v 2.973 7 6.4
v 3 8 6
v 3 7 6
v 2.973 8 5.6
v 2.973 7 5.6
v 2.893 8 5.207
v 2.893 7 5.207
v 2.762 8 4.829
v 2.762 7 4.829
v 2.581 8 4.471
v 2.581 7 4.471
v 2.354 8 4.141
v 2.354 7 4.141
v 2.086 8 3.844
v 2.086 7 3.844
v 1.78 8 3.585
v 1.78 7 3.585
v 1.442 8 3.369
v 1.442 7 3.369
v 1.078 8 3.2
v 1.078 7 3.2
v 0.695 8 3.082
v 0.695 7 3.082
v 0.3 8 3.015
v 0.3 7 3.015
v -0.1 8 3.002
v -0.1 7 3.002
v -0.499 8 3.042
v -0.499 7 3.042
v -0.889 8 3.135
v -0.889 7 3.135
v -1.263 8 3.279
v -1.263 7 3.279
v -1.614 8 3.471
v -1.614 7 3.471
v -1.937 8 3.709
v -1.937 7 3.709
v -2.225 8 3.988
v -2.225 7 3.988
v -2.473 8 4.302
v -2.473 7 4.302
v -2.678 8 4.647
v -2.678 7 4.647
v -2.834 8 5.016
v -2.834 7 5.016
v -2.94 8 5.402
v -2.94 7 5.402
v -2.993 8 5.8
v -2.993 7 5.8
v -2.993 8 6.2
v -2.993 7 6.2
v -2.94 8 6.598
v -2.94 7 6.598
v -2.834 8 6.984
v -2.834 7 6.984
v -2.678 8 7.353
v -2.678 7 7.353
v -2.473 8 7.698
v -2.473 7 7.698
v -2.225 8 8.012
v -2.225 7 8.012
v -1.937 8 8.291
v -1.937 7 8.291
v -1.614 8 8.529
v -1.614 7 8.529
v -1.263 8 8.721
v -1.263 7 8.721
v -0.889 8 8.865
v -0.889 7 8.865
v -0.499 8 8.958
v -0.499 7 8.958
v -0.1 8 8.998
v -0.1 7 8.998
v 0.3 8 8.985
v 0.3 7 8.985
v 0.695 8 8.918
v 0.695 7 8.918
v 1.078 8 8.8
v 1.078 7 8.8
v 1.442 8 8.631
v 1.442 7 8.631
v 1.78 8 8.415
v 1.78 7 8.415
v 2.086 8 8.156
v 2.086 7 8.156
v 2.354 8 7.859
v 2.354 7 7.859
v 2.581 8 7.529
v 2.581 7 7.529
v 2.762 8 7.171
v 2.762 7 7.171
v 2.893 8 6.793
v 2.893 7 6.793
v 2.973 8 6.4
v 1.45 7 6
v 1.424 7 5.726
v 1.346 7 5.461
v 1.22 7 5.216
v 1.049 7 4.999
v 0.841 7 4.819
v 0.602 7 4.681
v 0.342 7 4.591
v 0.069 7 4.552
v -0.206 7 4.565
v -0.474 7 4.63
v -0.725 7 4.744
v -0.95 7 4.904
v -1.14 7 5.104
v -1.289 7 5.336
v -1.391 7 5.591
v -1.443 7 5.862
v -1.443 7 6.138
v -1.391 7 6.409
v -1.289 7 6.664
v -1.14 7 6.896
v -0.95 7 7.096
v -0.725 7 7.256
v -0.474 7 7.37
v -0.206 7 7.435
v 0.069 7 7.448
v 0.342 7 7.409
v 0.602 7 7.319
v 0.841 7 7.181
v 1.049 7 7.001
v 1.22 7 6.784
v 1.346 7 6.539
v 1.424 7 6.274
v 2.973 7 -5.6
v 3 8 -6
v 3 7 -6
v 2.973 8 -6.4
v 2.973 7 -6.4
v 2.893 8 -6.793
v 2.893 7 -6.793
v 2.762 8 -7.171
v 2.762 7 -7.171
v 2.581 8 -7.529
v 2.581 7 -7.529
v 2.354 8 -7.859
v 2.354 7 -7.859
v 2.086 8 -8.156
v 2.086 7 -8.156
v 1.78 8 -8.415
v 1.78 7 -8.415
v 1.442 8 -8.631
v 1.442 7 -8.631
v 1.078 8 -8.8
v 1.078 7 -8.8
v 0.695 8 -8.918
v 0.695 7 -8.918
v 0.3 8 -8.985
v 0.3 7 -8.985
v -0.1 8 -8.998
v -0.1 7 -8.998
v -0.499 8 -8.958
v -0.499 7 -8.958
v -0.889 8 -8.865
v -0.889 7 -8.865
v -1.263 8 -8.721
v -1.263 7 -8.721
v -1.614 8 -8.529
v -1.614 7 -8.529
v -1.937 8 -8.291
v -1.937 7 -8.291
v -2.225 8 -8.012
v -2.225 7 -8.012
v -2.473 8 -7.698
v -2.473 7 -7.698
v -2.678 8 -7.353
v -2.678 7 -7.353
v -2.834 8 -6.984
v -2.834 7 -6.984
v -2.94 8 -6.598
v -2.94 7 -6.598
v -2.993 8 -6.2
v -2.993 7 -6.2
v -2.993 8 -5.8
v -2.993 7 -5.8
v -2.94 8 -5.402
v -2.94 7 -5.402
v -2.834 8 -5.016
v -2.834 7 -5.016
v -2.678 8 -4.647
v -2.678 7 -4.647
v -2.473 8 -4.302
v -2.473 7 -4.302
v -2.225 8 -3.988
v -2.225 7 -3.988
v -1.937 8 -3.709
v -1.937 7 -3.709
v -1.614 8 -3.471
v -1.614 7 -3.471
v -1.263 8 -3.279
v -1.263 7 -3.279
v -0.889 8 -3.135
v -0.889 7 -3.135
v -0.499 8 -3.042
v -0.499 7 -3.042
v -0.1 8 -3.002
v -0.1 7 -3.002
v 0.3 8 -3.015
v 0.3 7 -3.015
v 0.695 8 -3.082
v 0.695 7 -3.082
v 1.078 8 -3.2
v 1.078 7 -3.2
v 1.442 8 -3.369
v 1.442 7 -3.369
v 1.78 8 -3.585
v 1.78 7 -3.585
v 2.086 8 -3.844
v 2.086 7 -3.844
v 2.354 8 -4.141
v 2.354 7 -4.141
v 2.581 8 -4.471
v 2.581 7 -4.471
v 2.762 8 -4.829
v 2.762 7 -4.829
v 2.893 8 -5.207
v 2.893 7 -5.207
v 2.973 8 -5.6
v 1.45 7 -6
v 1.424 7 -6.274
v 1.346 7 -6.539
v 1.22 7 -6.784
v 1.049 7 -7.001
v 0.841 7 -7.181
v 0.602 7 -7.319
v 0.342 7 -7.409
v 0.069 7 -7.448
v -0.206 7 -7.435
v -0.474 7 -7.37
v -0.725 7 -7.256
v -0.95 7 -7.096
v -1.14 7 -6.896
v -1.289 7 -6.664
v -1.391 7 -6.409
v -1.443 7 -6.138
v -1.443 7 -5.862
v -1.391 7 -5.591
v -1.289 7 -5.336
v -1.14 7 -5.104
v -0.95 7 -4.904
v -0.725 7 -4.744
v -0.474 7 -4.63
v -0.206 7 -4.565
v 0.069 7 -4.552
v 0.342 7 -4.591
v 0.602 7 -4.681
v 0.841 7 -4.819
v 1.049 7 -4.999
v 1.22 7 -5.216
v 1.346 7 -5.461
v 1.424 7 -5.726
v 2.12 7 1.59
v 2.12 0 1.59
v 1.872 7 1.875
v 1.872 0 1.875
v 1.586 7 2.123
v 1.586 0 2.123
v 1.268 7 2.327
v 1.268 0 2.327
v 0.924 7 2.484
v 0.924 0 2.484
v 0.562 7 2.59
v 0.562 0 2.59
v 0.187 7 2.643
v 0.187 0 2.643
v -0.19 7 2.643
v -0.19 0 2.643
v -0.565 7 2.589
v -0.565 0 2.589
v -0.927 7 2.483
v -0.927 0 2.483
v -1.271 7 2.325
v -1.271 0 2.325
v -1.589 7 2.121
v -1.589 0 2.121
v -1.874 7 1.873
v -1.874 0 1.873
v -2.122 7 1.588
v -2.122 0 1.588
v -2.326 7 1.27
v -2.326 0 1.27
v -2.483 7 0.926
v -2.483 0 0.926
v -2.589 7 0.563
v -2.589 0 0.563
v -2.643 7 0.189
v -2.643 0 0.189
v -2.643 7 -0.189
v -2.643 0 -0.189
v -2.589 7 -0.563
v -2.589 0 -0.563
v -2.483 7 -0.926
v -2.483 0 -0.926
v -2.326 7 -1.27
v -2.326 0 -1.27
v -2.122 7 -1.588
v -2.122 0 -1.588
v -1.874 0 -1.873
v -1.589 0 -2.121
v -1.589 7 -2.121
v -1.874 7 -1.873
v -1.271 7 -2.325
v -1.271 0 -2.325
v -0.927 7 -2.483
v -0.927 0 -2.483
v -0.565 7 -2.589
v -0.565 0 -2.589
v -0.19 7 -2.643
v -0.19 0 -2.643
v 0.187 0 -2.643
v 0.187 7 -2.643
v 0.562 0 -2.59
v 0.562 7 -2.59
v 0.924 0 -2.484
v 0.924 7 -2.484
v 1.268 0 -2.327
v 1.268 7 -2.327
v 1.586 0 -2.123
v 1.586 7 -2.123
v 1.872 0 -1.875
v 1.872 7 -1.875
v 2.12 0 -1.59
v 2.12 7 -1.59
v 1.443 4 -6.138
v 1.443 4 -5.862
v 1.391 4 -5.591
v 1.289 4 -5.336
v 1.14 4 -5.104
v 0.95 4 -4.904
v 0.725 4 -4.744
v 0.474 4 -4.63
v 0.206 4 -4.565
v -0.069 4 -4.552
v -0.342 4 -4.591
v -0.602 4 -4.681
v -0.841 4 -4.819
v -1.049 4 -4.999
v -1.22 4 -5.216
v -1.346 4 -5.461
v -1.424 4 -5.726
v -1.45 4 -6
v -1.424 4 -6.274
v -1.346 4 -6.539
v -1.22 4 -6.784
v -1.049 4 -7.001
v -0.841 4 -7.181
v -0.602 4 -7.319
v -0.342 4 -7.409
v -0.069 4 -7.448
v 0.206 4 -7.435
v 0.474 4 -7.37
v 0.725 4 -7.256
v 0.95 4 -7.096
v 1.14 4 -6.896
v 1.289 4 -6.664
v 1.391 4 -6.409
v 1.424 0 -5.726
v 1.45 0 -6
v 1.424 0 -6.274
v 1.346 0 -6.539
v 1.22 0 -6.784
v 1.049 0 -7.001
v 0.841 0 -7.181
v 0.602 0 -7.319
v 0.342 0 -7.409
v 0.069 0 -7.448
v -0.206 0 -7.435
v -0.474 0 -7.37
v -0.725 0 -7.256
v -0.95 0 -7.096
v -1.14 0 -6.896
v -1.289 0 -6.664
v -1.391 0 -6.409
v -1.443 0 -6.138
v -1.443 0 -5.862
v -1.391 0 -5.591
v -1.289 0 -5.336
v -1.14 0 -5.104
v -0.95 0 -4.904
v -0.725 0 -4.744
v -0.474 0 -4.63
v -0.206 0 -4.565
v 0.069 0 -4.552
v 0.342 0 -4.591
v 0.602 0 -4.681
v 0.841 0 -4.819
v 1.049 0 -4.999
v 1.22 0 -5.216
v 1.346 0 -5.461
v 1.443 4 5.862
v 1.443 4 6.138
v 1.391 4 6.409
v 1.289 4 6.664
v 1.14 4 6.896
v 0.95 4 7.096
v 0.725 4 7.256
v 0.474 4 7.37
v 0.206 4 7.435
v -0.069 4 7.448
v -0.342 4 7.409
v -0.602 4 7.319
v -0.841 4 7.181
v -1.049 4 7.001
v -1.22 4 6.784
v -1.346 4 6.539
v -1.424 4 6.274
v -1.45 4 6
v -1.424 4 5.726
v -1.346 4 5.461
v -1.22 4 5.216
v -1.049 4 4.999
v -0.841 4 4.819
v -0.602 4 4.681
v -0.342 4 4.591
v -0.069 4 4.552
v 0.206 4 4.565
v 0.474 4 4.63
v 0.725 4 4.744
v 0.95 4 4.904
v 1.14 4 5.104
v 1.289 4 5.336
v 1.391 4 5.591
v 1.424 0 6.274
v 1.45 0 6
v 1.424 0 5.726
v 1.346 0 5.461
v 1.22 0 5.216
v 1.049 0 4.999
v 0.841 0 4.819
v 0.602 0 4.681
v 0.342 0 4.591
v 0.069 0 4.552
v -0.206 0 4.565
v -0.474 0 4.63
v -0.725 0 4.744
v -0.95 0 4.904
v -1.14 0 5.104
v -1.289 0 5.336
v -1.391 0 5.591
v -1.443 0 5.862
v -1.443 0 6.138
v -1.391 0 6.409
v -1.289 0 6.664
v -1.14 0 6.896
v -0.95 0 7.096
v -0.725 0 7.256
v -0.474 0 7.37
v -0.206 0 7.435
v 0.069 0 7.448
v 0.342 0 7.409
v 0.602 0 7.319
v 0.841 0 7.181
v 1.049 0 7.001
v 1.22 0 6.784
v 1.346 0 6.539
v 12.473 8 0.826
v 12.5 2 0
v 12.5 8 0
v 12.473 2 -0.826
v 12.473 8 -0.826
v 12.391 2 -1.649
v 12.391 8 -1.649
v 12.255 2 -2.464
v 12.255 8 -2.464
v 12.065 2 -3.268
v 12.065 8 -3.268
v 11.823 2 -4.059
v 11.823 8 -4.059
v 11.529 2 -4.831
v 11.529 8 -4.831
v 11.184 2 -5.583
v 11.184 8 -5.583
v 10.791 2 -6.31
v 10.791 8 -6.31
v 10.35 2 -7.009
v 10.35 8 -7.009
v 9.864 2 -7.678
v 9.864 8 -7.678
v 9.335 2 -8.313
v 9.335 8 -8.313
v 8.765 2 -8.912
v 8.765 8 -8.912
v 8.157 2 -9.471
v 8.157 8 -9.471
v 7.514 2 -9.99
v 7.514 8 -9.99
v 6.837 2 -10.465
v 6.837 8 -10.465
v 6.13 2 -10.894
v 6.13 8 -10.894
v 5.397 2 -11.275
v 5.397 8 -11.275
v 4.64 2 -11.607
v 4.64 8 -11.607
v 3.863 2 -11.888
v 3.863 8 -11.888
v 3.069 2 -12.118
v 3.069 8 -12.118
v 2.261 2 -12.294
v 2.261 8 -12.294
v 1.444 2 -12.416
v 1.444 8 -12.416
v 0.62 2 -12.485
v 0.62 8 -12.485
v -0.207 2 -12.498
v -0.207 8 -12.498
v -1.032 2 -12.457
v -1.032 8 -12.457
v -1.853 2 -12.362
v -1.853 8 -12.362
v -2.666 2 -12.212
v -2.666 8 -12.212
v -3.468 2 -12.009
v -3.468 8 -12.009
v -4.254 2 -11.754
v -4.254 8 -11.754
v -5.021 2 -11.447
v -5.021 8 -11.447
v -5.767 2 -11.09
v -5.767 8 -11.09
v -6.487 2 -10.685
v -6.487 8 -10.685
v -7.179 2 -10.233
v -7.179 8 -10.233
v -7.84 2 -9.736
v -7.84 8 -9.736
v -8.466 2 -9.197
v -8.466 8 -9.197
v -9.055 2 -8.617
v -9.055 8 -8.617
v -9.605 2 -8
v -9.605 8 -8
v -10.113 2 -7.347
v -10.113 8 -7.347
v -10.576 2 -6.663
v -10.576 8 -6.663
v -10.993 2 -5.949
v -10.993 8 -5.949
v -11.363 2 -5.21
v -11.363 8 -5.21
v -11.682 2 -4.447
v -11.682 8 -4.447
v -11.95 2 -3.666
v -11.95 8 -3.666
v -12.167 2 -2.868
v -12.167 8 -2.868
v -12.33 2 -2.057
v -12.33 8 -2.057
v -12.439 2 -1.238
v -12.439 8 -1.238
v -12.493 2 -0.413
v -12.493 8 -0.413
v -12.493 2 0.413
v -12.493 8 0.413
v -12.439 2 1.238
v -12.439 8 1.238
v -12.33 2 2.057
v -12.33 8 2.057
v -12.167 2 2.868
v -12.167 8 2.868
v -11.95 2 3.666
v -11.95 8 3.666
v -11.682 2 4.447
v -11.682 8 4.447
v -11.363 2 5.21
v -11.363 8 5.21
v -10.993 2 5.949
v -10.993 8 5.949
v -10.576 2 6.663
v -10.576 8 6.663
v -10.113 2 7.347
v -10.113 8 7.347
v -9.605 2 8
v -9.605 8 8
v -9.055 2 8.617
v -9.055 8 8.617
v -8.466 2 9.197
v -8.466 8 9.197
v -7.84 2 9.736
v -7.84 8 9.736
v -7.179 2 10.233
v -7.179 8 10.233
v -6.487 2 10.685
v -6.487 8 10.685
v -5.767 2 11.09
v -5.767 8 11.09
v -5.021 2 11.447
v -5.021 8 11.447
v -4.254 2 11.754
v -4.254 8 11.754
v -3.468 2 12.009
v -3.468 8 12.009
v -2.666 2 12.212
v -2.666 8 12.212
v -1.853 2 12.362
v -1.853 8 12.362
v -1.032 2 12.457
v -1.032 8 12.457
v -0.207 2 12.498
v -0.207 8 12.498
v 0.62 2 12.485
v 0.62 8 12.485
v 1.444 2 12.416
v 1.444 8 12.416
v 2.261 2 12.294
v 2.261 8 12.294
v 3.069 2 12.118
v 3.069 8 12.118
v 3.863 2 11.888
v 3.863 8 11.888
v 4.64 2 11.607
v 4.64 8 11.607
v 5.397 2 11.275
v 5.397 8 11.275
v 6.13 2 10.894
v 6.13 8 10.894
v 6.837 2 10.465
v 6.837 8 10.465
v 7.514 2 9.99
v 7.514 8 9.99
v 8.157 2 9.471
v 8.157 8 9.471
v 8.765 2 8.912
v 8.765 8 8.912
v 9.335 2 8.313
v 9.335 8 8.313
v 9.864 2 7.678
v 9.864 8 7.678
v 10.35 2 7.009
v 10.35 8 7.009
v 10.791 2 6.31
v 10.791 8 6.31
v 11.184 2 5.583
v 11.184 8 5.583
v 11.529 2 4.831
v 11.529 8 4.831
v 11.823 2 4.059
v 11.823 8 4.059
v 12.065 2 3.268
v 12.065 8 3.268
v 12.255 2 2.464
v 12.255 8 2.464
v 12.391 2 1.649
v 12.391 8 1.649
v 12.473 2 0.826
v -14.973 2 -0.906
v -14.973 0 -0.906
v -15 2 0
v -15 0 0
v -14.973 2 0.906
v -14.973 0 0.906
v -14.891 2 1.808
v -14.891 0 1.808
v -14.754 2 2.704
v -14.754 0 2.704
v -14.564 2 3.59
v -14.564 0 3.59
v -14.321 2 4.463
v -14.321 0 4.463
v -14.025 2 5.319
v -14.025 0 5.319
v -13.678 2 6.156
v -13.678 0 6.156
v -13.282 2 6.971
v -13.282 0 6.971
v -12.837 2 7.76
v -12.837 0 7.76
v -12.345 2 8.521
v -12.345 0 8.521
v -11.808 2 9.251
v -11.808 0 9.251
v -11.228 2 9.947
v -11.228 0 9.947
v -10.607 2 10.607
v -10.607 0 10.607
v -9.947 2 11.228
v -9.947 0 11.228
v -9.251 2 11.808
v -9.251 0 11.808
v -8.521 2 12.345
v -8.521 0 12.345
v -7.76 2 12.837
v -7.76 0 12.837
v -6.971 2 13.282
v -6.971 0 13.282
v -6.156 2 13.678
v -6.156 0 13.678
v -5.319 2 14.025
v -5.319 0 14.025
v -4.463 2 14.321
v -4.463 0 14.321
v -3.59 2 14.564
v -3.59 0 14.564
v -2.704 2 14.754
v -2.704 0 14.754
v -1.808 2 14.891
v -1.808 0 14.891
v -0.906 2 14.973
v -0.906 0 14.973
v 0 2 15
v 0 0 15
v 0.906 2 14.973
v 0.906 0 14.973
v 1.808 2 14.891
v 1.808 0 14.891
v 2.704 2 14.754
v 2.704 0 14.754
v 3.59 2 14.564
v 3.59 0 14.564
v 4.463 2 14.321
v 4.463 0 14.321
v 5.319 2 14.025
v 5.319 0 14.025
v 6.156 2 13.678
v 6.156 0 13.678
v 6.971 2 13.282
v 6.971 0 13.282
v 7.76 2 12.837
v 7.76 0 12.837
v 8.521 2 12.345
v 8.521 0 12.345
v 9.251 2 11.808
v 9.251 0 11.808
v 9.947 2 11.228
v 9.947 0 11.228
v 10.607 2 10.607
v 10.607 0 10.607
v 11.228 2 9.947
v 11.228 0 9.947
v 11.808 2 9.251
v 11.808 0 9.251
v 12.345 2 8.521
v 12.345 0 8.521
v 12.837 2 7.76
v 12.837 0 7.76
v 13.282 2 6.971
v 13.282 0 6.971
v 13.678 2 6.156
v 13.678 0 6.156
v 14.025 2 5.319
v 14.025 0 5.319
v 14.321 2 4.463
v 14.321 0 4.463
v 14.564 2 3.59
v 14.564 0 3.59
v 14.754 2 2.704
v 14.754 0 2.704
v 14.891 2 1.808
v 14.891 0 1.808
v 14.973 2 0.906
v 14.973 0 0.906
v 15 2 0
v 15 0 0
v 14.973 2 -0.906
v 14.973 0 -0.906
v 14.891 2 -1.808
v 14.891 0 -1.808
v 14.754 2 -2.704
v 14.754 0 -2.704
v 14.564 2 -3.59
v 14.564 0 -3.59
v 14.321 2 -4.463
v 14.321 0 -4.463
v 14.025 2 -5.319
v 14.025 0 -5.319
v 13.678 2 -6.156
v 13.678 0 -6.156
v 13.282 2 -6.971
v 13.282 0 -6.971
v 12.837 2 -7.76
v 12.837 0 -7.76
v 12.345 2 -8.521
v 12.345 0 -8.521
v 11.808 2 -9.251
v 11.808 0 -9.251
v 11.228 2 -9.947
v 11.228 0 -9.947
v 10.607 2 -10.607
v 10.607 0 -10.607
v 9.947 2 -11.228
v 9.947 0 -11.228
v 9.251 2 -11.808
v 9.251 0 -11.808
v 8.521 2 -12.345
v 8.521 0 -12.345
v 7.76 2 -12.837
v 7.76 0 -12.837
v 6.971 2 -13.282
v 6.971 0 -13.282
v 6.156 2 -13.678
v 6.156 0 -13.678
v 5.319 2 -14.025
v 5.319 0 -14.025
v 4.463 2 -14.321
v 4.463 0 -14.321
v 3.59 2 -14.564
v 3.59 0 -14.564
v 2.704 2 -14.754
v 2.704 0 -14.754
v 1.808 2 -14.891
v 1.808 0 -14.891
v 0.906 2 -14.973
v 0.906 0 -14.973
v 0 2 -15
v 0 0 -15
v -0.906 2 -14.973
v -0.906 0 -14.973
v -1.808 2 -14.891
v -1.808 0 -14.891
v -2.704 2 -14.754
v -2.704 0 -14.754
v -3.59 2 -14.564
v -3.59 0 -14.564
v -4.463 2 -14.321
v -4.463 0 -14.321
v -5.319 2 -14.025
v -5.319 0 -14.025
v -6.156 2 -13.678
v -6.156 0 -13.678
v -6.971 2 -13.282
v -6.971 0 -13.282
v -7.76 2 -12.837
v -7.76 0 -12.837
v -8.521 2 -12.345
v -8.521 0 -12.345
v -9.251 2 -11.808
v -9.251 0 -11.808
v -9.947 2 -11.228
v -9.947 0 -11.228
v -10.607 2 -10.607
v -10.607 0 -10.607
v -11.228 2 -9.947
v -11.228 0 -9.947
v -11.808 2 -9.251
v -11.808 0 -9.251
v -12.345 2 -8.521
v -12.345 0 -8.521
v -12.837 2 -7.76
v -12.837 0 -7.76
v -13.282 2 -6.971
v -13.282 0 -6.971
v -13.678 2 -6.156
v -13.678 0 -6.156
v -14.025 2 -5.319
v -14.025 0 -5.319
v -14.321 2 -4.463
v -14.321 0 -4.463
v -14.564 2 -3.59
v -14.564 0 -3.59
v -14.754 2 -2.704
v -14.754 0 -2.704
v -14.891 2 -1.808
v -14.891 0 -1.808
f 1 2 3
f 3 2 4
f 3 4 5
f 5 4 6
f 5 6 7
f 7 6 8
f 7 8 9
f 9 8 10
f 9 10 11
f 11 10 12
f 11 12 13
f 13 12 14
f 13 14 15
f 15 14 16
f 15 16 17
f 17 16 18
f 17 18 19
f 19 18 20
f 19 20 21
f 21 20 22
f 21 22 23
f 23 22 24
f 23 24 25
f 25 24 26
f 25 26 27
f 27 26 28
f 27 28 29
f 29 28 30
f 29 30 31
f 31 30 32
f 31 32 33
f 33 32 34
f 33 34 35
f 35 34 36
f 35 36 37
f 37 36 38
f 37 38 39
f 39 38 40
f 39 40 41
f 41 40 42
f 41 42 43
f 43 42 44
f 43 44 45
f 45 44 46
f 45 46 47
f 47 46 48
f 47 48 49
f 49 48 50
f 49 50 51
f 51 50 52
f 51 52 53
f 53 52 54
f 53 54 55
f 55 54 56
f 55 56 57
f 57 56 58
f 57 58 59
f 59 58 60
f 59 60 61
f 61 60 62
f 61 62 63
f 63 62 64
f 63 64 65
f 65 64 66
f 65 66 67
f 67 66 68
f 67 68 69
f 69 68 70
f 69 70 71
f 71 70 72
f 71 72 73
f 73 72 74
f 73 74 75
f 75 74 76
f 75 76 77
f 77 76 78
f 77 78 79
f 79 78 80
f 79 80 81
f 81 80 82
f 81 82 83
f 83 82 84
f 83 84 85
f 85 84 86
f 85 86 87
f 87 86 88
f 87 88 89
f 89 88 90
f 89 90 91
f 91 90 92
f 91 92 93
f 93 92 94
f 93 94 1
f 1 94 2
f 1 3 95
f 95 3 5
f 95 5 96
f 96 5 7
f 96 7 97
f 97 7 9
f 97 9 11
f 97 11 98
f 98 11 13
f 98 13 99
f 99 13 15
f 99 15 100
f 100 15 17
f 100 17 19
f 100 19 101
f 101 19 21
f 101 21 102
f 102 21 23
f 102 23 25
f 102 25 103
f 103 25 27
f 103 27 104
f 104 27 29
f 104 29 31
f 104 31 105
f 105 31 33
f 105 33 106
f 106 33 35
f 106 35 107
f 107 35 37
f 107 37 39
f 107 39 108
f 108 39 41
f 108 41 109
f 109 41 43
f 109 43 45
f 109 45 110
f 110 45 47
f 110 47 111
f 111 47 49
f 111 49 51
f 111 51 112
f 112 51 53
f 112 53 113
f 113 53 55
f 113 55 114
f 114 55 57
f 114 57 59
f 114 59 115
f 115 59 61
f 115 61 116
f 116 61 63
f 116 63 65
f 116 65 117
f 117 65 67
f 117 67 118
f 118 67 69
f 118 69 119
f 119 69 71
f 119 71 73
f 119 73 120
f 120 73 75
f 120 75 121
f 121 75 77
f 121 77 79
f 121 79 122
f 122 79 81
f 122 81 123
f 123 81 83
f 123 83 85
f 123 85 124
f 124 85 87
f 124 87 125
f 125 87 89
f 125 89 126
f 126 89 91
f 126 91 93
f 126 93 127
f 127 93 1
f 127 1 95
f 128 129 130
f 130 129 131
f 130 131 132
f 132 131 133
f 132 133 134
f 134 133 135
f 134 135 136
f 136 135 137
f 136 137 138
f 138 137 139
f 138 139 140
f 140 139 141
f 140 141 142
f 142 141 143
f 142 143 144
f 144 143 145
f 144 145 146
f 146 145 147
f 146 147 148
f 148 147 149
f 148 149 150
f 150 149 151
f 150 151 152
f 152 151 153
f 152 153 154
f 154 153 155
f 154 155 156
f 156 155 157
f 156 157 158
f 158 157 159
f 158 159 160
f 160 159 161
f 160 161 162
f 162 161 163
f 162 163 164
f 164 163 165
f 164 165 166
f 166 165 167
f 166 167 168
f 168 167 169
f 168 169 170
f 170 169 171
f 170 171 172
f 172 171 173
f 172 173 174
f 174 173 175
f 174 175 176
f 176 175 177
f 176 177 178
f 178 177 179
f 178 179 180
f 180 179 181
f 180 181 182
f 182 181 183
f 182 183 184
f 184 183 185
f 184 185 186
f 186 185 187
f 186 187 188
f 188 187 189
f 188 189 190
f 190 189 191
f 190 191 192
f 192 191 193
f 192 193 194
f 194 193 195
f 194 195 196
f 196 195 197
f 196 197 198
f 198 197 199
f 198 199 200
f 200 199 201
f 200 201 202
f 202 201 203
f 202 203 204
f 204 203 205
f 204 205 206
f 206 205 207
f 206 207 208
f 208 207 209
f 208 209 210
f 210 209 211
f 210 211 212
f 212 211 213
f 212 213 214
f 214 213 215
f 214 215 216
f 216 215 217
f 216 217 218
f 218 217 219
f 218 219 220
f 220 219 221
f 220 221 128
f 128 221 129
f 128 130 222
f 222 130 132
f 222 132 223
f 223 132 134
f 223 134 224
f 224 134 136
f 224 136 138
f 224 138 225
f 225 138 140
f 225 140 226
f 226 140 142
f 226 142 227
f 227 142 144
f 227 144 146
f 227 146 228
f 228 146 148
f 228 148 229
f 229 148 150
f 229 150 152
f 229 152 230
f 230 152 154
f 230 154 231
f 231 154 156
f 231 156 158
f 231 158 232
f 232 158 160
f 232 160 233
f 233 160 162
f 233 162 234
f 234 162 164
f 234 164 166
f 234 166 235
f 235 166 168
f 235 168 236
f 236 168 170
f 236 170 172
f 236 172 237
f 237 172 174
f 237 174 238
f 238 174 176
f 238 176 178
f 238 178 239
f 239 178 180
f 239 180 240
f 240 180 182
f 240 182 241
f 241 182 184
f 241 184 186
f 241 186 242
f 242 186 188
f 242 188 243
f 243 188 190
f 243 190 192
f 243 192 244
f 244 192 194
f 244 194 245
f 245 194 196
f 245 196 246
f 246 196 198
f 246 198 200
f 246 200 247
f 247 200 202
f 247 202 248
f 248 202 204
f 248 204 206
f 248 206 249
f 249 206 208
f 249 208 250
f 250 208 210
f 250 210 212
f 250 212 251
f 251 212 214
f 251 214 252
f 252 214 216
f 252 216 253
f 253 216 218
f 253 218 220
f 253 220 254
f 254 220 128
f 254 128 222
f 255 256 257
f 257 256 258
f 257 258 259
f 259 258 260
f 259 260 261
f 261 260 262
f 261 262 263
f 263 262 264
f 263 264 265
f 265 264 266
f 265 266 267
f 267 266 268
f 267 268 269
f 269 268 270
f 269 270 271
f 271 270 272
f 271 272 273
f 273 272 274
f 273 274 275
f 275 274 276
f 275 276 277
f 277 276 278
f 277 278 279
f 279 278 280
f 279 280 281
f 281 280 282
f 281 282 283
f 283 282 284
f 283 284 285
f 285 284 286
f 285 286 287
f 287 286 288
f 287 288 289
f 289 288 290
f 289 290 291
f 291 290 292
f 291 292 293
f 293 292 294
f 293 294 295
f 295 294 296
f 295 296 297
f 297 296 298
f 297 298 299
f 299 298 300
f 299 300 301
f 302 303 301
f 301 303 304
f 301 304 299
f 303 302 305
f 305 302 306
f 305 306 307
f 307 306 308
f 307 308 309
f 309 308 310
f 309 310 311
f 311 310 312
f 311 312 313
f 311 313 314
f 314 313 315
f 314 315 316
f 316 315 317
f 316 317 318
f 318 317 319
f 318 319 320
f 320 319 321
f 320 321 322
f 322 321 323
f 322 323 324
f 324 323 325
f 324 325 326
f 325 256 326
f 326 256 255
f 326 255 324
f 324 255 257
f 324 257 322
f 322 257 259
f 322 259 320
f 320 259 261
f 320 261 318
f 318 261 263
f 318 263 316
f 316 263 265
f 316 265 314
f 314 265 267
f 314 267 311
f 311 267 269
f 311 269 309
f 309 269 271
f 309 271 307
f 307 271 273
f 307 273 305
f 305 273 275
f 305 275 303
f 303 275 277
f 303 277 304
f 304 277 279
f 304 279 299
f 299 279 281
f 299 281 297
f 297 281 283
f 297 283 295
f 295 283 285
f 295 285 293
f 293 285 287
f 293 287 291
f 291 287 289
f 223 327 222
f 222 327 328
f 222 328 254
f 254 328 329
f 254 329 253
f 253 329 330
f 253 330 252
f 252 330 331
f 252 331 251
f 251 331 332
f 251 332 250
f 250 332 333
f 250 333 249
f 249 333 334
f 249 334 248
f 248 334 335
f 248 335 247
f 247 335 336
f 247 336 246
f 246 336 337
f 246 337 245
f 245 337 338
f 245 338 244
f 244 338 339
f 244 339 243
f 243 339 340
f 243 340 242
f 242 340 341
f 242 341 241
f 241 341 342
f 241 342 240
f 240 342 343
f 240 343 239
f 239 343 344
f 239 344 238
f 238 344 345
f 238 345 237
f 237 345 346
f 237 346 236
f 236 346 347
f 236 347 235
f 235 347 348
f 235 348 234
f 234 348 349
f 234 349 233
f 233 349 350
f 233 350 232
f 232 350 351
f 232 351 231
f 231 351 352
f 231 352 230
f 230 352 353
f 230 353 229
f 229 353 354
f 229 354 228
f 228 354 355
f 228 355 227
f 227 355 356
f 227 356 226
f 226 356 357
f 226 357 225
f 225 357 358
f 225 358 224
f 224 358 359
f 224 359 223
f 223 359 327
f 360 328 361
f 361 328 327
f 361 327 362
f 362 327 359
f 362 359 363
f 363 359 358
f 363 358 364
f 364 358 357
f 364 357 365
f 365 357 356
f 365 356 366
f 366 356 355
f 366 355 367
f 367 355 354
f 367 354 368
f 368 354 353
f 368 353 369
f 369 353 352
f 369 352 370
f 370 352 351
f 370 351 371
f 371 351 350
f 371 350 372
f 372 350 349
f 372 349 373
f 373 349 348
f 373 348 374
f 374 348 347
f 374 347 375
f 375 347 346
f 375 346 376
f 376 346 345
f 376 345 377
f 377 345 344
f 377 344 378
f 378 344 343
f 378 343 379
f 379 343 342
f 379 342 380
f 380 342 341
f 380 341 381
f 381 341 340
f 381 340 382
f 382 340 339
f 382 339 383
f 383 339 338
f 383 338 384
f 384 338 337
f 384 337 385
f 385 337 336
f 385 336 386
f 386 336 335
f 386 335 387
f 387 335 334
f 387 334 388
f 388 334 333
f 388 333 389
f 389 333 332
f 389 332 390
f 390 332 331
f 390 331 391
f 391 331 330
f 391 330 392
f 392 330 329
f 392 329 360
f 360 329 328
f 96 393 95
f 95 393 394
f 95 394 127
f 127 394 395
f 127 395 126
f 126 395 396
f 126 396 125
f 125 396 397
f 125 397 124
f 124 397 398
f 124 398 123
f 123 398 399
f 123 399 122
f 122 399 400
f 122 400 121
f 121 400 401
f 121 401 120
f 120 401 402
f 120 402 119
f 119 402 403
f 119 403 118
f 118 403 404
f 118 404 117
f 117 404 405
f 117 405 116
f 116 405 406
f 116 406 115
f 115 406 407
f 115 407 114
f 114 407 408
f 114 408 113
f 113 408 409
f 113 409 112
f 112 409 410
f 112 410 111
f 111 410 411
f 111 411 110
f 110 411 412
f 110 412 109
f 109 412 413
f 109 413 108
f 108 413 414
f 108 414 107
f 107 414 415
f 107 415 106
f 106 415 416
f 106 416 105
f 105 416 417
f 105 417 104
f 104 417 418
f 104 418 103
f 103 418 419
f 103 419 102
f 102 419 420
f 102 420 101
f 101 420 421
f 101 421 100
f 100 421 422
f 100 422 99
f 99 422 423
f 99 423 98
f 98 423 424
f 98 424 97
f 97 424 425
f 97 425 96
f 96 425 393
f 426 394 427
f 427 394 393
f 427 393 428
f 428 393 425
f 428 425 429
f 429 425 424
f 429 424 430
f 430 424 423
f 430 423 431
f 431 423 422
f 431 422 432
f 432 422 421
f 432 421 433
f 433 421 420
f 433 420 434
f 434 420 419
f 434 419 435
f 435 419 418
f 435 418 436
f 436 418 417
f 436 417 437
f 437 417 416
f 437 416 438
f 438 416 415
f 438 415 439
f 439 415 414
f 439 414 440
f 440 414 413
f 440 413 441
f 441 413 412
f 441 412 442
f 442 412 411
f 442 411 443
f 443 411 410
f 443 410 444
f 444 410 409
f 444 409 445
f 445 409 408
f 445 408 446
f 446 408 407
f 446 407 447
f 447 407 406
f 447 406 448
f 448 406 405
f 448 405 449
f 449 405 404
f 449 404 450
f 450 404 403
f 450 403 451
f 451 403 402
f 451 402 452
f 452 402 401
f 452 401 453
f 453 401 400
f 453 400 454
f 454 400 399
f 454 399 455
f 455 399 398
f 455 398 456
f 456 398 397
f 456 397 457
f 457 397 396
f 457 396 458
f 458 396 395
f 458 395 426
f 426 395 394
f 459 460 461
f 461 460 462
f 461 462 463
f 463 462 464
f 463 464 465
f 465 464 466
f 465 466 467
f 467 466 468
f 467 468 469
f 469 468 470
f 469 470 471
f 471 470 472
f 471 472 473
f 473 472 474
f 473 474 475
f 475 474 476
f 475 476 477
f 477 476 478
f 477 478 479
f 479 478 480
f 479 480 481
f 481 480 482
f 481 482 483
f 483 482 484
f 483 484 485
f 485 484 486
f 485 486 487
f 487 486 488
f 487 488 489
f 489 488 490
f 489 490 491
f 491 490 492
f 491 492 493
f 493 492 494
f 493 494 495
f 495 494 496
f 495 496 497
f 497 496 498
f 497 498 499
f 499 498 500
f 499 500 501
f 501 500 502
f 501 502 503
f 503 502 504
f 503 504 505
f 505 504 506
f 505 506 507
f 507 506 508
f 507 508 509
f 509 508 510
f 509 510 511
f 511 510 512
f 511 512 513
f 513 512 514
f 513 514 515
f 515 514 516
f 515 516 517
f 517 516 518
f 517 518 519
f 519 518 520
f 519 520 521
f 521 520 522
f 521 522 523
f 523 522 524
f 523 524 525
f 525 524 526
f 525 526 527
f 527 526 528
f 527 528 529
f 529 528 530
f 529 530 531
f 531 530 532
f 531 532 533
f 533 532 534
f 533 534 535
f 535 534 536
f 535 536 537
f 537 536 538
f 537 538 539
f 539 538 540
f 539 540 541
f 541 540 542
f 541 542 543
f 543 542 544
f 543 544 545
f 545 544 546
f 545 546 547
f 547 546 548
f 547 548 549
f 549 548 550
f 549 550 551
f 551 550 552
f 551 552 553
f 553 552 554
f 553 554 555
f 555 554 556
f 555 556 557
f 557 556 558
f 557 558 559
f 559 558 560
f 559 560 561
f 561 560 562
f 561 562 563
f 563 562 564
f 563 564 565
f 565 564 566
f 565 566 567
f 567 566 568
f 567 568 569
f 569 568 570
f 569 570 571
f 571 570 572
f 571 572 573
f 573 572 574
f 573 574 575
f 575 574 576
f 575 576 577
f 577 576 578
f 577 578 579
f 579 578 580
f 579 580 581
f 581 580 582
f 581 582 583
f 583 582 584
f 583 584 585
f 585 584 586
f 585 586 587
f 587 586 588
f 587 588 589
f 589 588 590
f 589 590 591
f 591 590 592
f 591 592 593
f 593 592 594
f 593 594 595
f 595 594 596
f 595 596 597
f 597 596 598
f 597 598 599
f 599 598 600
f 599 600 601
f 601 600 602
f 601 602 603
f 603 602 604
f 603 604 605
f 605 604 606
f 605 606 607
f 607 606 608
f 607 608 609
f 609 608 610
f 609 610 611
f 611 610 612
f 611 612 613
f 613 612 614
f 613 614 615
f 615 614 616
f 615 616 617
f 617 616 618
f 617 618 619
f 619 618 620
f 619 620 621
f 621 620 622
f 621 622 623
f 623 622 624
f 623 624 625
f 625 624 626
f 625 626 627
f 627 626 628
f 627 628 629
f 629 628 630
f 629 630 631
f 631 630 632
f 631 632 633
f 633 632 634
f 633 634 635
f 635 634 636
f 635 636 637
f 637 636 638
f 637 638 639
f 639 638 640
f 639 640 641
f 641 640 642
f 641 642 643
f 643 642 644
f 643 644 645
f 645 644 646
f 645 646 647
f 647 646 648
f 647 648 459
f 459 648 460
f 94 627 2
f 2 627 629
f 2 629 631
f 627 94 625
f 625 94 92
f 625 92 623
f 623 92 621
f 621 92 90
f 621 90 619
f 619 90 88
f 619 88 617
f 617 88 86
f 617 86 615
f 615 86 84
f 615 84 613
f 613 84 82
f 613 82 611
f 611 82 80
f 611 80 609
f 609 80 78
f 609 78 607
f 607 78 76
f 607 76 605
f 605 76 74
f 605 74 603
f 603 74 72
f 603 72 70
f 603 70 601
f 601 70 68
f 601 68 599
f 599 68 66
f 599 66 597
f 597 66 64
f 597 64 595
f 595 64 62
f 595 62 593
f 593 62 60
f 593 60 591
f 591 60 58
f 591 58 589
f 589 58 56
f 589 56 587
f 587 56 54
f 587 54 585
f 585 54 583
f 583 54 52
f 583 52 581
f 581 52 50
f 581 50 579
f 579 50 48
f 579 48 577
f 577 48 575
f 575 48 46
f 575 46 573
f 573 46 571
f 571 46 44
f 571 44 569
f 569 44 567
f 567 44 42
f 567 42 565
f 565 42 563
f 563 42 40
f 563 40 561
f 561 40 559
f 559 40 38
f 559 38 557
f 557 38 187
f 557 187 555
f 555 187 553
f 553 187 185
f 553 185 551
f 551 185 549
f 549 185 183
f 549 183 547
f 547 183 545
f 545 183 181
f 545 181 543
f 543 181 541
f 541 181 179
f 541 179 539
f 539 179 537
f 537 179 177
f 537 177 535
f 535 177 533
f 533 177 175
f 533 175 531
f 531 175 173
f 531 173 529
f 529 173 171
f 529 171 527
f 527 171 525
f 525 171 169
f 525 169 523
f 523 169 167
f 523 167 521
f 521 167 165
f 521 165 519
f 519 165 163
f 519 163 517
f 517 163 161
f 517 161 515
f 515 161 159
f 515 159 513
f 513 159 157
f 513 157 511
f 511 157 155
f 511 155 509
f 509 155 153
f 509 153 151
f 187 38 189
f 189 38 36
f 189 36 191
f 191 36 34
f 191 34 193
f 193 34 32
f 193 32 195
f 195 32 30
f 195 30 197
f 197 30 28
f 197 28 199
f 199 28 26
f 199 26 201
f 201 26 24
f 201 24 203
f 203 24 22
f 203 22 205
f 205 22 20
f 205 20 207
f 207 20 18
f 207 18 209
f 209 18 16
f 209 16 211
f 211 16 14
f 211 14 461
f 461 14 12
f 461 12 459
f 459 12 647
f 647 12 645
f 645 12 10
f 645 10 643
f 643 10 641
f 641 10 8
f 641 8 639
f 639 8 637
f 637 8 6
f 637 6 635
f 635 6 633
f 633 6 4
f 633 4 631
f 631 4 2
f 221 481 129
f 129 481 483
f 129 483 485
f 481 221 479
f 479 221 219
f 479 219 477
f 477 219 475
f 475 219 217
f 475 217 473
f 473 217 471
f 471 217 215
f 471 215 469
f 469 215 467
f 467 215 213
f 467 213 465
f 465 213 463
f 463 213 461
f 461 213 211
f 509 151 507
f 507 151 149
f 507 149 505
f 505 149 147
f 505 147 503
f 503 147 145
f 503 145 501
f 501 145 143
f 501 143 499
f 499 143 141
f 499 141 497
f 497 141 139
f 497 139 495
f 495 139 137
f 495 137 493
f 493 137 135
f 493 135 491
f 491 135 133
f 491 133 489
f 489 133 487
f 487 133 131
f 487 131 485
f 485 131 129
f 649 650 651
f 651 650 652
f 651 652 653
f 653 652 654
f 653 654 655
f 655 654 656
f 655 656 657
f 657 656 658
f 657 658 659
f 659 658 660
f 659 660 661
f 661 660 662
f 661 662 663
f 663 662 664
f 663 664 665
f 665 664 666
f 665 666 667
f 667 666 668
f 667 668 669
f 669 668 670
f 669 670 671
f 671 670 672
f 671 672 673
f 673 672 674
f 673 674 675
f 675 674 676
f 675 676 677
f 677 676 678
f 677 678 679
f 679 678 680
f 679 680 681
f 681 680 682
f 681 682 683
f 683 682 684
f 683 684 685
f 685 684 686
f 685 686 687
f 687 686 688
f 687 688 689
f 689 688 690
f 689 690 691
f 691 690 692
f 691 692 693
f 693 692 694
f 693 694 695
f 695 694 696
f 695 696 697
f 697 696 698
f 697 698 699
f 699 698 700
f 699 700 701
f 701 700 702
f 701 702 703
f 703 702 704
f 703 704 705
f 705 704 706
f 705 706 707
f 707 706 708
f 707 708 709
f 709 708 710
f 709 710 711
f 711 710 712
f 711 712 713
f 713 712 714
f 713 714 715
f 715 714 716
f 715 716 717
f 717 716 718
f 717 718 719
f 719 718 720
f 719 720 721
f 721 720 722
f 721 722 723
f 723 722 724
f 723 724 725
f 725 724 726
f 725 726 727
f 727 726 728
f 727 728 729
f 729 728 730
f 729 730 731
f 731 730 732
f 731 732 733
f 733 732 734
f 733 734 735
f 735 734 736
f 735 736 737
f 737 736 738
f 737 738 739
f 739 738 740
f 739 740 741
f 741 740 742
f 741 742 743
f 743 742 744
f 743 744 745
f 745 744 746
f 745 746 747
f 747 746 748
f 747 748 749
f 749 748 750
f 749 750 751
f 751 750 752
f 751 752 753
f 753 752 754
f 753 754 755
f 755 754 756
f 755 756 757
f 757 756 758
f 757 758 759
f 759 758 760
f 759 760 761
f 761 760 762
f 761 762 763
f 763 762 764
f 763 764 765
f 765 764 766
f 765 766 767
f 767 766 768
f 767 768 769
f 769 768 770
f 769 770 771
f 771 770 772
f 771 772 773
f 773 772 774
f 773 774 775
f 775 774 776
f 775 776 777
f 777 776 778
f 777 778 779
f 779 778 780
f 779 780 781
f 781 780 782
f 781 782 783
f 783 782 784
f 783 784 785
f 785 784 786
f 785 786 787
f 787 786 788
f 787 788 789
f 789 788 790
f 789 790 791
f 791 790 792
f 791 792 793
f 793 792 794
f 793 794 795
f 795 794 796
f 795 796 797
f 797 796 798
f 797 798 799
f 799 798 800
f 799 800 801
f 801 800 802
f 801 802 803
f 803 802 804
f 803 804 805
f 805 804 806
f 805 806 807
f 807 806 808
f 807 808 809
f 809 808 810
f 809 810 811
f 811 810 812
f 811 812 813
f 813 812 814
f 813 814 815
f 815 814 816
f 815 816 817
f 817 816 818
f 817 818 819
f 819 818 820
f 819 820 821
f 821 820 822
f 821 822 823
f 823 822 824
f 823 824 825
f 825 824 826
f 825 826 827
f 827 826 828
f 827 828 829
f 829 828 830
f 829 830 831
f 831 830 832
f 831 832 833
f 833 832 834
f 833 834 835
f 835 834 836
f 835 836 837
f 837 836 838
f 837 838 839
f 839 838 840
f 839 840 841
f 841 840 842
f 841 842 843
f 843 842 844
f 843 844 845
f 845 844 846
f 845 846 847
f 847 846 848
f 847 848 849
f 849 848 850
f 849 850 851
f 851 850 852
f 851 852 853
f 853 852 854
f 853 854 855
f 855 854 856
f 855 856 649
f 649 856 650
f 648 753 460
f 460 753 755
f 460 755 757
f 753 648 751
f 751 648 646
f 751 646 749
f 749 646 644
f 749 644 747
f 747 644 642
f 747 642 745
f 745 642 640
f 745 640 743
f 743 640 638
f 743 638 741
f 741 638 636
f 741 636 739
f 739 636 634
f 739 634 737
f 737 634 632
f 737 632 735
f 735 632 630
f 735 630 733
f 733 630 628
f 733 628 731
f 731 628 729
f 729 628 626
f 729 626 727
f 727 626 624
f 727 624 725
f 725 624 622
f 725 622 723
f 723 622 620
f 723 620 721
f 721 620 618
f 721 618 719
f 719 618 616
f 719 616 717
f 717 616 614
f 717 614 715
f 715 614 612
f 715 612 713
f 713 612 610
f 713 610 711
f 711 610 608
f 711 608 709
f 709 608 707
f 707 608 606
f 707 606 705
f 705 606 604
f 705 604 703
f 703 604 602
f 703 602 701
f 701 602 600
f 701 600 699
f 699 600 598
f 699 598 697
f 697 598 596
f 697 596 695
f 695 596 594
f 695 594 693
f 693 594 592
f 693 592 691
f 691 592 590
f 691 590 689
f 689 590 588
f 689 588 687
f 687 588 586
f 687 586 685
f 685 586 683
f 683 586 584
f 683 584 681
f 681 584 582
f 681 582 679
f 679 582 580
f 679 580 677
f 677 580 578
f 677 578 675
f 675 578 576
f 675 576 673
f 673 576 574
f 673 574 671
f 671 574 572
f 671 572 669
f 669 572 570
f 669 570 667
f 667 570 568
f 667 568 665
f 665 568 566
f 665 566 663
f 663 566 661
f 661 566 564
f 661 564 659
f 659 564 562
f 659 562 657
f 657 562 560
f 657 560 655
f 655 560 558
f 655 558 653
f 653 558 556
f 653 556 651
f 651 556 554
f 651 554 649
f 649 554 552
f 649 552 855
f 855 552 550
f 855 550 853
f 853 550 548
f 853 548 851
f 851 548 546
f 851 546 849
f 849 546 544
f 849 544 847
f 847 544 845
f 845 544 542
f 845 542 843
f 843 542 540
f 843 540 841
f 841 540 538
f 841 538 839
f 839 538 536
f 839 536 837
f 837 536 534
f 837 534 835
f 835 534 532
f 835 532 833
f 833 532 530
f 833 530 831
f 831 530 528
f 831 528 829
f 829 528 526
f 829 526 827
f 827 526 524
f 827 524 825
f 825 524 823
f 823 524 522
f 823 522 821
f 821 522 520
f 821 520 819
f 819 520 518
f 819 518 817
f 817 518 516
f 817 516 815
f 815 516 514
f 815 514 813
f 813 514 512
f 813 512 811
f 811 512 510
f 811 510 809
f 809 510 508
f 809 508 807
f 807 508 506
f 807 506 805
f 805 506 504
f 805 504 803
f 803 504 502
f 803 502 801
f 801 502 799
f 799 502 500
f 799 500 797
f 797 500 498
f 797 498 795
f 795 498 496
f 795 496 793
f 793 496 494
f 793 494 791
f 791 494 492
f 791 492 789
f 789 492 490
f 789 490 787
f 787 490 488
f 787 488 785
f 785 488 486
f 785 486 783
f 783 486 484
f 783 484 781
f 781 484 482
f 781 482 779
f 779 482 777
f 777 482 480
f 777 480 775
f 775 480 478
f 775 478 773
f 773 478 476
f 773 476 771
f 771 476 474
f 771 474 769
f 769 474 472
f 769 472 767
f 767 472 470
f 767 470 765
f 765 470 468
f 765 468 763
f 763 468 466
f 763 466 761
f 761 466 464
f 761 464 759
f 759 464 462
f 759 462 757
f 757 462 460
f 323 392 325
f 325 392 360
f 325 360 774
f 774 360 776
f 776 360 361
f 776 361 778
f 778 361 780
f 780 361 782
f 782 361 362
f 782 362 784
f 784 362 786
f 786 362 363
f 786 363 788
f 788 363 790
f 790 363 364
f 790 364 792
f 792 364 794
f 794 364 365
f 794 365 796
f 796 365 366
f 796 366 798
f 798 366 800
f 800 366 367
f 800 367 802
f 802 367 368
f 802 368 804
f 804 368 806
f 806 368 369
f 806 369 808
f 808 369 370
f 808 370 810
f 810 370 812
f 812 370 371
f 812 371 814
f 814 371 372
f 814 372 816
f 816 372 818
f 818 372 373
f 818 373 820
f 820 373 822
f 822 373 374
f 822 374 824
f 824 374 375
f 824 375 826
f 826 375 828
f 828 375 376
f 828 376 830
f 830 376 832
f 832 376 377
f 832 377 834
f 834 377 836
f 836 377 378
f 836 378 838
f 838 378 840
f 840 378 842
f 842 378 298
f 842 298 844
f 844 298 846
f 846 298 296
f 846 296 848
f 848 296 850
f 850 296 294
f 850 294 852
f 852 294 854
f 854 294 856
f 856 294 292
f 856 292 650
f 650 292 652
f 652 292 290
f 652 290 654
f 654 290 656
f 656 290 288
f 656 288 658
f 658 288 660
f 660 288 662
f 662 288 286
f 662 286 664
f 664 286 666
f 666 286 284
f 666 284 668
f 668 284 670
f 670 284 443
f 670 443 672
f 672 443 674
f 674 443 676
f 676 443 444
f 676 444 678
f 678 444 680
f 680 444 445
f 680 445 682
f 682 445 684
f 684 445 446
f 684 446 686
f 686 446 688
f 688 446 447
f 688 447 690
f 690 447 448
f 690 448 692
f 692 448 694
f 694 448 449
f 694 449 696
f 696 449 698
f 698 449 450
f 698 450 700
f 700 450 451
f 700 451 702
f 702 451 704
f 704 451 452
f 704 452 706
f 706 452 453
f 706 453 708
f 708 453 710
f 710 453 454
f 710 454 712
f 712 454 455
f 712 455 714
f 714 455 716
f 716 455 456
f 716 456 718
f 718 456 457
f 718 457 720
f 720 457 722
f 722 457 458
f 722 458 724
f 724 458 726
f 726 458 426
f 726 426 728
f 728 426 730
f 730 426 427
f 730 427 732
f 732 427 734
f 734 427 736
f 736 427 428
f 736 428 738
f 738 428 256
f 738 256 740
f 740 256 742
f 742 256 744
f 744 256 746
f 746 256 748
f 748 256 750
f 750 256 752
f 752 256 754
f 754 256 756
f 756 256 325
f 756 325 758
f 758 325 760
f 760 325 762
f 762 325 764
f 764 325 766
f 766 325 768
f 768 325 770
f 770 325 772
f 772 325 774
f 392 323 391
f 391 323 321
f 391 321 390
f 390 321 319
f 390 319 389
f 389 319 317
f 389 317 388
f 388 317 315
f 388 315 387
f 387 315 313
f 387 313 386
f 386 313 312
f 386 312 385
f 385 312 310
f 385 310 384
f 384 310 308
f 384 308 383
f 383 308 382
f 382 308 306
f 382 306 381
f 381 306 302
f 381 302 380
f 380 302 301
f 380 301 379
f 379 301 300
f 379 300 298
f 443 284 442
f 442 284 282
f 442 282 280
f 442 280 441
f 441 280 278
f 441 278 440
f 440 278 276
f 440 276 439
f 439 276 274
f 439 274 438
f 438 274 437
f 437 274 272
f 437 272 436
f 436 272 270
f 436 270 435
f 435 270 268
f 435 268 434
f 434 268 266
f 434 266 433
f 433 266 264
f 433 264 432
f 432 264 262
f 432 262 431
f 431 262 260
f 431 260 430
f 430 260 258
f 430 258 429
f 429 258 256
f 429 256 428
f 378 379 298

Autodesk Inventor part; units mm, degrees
ref_plane "YZ Plane" through (0, 0, 0) normal (1, 0, 0) x (0, 1, 0)
ref_plane "XZ Plane" through (0, 0, 0) normal (0, 1, 0) x (-1, 0, 0)
ref_plane "XY Plane" through (0, 0, 0) normal (0, 0, 1) x (1, 0, 0)
sketch "Szkic1" plane through (0, 0, 0) normal (0, 1, 0) x (-1, 0, 0)
  circle A0 centre (0, 0) radius 15
  dimension "d0" = 30
extrude "Wyciągnięcie proste1" add sketch "Szkic1" along normal blind 2
sketch "Szkic2" plane through (0, 2, 0) normal (0, 1, 0) x (1, 0, 0)
  circle A0 centre (0, 0) radius 12.5
  dimension "d3" = 25
extrude "Wyciągnięcie proste2" add sketch "Szkic2" along normal blind 6
sketch "Szkic3" plane through (0, 8, 0) normal (0, 1, 0) x (1, 0, 0)
  circle A0 centre (0, -6) radius 1.45
  circle A1 centre (0, 6) radius 1.45
  point P0 (0, 0)
  dimension "d6" = 2.9
  dimension "d7" = 2.9
extrude "Wyciągnięcie proste3" cut sketch "Szkic3" against normal blind 8
sketch "Szkic4" plane through (0, 0, 0) normal (0, -1, 0) x (1, 0, 0)
  arc A0 (2.12, 1.59) -> (2.12, -1.59) centre (0, 0) ccw
  line L0 (2.12, 1.59) -> (2.12, -1.59)
  dimension "d10" = 5.3
  dimension "d11" = 2.12
extrude "Wyciągnięcie proste4" cut sketch "Szkic4" against normal blind 7
sketch "Szkic5" plane through (0, 8, 0) normal (0, 1, 0) x (1, 0, 0)
  circle A0 centre (0, -6) radius 1.45 projected
  circle A1 centre (0, -6) radius 3
  circle A2 centre (0, 6) radius 1.45 projected
  circle A3 centre (0, 6) radius 3
  point P0 (0, 0)
  dimension "d14" = 6
  dimension "d15" = 6
extrude "Wyciągnięcie proste5" cut sketch "Szkic5" against normal blind 1
properties part number "_Drukowanie 3D"
